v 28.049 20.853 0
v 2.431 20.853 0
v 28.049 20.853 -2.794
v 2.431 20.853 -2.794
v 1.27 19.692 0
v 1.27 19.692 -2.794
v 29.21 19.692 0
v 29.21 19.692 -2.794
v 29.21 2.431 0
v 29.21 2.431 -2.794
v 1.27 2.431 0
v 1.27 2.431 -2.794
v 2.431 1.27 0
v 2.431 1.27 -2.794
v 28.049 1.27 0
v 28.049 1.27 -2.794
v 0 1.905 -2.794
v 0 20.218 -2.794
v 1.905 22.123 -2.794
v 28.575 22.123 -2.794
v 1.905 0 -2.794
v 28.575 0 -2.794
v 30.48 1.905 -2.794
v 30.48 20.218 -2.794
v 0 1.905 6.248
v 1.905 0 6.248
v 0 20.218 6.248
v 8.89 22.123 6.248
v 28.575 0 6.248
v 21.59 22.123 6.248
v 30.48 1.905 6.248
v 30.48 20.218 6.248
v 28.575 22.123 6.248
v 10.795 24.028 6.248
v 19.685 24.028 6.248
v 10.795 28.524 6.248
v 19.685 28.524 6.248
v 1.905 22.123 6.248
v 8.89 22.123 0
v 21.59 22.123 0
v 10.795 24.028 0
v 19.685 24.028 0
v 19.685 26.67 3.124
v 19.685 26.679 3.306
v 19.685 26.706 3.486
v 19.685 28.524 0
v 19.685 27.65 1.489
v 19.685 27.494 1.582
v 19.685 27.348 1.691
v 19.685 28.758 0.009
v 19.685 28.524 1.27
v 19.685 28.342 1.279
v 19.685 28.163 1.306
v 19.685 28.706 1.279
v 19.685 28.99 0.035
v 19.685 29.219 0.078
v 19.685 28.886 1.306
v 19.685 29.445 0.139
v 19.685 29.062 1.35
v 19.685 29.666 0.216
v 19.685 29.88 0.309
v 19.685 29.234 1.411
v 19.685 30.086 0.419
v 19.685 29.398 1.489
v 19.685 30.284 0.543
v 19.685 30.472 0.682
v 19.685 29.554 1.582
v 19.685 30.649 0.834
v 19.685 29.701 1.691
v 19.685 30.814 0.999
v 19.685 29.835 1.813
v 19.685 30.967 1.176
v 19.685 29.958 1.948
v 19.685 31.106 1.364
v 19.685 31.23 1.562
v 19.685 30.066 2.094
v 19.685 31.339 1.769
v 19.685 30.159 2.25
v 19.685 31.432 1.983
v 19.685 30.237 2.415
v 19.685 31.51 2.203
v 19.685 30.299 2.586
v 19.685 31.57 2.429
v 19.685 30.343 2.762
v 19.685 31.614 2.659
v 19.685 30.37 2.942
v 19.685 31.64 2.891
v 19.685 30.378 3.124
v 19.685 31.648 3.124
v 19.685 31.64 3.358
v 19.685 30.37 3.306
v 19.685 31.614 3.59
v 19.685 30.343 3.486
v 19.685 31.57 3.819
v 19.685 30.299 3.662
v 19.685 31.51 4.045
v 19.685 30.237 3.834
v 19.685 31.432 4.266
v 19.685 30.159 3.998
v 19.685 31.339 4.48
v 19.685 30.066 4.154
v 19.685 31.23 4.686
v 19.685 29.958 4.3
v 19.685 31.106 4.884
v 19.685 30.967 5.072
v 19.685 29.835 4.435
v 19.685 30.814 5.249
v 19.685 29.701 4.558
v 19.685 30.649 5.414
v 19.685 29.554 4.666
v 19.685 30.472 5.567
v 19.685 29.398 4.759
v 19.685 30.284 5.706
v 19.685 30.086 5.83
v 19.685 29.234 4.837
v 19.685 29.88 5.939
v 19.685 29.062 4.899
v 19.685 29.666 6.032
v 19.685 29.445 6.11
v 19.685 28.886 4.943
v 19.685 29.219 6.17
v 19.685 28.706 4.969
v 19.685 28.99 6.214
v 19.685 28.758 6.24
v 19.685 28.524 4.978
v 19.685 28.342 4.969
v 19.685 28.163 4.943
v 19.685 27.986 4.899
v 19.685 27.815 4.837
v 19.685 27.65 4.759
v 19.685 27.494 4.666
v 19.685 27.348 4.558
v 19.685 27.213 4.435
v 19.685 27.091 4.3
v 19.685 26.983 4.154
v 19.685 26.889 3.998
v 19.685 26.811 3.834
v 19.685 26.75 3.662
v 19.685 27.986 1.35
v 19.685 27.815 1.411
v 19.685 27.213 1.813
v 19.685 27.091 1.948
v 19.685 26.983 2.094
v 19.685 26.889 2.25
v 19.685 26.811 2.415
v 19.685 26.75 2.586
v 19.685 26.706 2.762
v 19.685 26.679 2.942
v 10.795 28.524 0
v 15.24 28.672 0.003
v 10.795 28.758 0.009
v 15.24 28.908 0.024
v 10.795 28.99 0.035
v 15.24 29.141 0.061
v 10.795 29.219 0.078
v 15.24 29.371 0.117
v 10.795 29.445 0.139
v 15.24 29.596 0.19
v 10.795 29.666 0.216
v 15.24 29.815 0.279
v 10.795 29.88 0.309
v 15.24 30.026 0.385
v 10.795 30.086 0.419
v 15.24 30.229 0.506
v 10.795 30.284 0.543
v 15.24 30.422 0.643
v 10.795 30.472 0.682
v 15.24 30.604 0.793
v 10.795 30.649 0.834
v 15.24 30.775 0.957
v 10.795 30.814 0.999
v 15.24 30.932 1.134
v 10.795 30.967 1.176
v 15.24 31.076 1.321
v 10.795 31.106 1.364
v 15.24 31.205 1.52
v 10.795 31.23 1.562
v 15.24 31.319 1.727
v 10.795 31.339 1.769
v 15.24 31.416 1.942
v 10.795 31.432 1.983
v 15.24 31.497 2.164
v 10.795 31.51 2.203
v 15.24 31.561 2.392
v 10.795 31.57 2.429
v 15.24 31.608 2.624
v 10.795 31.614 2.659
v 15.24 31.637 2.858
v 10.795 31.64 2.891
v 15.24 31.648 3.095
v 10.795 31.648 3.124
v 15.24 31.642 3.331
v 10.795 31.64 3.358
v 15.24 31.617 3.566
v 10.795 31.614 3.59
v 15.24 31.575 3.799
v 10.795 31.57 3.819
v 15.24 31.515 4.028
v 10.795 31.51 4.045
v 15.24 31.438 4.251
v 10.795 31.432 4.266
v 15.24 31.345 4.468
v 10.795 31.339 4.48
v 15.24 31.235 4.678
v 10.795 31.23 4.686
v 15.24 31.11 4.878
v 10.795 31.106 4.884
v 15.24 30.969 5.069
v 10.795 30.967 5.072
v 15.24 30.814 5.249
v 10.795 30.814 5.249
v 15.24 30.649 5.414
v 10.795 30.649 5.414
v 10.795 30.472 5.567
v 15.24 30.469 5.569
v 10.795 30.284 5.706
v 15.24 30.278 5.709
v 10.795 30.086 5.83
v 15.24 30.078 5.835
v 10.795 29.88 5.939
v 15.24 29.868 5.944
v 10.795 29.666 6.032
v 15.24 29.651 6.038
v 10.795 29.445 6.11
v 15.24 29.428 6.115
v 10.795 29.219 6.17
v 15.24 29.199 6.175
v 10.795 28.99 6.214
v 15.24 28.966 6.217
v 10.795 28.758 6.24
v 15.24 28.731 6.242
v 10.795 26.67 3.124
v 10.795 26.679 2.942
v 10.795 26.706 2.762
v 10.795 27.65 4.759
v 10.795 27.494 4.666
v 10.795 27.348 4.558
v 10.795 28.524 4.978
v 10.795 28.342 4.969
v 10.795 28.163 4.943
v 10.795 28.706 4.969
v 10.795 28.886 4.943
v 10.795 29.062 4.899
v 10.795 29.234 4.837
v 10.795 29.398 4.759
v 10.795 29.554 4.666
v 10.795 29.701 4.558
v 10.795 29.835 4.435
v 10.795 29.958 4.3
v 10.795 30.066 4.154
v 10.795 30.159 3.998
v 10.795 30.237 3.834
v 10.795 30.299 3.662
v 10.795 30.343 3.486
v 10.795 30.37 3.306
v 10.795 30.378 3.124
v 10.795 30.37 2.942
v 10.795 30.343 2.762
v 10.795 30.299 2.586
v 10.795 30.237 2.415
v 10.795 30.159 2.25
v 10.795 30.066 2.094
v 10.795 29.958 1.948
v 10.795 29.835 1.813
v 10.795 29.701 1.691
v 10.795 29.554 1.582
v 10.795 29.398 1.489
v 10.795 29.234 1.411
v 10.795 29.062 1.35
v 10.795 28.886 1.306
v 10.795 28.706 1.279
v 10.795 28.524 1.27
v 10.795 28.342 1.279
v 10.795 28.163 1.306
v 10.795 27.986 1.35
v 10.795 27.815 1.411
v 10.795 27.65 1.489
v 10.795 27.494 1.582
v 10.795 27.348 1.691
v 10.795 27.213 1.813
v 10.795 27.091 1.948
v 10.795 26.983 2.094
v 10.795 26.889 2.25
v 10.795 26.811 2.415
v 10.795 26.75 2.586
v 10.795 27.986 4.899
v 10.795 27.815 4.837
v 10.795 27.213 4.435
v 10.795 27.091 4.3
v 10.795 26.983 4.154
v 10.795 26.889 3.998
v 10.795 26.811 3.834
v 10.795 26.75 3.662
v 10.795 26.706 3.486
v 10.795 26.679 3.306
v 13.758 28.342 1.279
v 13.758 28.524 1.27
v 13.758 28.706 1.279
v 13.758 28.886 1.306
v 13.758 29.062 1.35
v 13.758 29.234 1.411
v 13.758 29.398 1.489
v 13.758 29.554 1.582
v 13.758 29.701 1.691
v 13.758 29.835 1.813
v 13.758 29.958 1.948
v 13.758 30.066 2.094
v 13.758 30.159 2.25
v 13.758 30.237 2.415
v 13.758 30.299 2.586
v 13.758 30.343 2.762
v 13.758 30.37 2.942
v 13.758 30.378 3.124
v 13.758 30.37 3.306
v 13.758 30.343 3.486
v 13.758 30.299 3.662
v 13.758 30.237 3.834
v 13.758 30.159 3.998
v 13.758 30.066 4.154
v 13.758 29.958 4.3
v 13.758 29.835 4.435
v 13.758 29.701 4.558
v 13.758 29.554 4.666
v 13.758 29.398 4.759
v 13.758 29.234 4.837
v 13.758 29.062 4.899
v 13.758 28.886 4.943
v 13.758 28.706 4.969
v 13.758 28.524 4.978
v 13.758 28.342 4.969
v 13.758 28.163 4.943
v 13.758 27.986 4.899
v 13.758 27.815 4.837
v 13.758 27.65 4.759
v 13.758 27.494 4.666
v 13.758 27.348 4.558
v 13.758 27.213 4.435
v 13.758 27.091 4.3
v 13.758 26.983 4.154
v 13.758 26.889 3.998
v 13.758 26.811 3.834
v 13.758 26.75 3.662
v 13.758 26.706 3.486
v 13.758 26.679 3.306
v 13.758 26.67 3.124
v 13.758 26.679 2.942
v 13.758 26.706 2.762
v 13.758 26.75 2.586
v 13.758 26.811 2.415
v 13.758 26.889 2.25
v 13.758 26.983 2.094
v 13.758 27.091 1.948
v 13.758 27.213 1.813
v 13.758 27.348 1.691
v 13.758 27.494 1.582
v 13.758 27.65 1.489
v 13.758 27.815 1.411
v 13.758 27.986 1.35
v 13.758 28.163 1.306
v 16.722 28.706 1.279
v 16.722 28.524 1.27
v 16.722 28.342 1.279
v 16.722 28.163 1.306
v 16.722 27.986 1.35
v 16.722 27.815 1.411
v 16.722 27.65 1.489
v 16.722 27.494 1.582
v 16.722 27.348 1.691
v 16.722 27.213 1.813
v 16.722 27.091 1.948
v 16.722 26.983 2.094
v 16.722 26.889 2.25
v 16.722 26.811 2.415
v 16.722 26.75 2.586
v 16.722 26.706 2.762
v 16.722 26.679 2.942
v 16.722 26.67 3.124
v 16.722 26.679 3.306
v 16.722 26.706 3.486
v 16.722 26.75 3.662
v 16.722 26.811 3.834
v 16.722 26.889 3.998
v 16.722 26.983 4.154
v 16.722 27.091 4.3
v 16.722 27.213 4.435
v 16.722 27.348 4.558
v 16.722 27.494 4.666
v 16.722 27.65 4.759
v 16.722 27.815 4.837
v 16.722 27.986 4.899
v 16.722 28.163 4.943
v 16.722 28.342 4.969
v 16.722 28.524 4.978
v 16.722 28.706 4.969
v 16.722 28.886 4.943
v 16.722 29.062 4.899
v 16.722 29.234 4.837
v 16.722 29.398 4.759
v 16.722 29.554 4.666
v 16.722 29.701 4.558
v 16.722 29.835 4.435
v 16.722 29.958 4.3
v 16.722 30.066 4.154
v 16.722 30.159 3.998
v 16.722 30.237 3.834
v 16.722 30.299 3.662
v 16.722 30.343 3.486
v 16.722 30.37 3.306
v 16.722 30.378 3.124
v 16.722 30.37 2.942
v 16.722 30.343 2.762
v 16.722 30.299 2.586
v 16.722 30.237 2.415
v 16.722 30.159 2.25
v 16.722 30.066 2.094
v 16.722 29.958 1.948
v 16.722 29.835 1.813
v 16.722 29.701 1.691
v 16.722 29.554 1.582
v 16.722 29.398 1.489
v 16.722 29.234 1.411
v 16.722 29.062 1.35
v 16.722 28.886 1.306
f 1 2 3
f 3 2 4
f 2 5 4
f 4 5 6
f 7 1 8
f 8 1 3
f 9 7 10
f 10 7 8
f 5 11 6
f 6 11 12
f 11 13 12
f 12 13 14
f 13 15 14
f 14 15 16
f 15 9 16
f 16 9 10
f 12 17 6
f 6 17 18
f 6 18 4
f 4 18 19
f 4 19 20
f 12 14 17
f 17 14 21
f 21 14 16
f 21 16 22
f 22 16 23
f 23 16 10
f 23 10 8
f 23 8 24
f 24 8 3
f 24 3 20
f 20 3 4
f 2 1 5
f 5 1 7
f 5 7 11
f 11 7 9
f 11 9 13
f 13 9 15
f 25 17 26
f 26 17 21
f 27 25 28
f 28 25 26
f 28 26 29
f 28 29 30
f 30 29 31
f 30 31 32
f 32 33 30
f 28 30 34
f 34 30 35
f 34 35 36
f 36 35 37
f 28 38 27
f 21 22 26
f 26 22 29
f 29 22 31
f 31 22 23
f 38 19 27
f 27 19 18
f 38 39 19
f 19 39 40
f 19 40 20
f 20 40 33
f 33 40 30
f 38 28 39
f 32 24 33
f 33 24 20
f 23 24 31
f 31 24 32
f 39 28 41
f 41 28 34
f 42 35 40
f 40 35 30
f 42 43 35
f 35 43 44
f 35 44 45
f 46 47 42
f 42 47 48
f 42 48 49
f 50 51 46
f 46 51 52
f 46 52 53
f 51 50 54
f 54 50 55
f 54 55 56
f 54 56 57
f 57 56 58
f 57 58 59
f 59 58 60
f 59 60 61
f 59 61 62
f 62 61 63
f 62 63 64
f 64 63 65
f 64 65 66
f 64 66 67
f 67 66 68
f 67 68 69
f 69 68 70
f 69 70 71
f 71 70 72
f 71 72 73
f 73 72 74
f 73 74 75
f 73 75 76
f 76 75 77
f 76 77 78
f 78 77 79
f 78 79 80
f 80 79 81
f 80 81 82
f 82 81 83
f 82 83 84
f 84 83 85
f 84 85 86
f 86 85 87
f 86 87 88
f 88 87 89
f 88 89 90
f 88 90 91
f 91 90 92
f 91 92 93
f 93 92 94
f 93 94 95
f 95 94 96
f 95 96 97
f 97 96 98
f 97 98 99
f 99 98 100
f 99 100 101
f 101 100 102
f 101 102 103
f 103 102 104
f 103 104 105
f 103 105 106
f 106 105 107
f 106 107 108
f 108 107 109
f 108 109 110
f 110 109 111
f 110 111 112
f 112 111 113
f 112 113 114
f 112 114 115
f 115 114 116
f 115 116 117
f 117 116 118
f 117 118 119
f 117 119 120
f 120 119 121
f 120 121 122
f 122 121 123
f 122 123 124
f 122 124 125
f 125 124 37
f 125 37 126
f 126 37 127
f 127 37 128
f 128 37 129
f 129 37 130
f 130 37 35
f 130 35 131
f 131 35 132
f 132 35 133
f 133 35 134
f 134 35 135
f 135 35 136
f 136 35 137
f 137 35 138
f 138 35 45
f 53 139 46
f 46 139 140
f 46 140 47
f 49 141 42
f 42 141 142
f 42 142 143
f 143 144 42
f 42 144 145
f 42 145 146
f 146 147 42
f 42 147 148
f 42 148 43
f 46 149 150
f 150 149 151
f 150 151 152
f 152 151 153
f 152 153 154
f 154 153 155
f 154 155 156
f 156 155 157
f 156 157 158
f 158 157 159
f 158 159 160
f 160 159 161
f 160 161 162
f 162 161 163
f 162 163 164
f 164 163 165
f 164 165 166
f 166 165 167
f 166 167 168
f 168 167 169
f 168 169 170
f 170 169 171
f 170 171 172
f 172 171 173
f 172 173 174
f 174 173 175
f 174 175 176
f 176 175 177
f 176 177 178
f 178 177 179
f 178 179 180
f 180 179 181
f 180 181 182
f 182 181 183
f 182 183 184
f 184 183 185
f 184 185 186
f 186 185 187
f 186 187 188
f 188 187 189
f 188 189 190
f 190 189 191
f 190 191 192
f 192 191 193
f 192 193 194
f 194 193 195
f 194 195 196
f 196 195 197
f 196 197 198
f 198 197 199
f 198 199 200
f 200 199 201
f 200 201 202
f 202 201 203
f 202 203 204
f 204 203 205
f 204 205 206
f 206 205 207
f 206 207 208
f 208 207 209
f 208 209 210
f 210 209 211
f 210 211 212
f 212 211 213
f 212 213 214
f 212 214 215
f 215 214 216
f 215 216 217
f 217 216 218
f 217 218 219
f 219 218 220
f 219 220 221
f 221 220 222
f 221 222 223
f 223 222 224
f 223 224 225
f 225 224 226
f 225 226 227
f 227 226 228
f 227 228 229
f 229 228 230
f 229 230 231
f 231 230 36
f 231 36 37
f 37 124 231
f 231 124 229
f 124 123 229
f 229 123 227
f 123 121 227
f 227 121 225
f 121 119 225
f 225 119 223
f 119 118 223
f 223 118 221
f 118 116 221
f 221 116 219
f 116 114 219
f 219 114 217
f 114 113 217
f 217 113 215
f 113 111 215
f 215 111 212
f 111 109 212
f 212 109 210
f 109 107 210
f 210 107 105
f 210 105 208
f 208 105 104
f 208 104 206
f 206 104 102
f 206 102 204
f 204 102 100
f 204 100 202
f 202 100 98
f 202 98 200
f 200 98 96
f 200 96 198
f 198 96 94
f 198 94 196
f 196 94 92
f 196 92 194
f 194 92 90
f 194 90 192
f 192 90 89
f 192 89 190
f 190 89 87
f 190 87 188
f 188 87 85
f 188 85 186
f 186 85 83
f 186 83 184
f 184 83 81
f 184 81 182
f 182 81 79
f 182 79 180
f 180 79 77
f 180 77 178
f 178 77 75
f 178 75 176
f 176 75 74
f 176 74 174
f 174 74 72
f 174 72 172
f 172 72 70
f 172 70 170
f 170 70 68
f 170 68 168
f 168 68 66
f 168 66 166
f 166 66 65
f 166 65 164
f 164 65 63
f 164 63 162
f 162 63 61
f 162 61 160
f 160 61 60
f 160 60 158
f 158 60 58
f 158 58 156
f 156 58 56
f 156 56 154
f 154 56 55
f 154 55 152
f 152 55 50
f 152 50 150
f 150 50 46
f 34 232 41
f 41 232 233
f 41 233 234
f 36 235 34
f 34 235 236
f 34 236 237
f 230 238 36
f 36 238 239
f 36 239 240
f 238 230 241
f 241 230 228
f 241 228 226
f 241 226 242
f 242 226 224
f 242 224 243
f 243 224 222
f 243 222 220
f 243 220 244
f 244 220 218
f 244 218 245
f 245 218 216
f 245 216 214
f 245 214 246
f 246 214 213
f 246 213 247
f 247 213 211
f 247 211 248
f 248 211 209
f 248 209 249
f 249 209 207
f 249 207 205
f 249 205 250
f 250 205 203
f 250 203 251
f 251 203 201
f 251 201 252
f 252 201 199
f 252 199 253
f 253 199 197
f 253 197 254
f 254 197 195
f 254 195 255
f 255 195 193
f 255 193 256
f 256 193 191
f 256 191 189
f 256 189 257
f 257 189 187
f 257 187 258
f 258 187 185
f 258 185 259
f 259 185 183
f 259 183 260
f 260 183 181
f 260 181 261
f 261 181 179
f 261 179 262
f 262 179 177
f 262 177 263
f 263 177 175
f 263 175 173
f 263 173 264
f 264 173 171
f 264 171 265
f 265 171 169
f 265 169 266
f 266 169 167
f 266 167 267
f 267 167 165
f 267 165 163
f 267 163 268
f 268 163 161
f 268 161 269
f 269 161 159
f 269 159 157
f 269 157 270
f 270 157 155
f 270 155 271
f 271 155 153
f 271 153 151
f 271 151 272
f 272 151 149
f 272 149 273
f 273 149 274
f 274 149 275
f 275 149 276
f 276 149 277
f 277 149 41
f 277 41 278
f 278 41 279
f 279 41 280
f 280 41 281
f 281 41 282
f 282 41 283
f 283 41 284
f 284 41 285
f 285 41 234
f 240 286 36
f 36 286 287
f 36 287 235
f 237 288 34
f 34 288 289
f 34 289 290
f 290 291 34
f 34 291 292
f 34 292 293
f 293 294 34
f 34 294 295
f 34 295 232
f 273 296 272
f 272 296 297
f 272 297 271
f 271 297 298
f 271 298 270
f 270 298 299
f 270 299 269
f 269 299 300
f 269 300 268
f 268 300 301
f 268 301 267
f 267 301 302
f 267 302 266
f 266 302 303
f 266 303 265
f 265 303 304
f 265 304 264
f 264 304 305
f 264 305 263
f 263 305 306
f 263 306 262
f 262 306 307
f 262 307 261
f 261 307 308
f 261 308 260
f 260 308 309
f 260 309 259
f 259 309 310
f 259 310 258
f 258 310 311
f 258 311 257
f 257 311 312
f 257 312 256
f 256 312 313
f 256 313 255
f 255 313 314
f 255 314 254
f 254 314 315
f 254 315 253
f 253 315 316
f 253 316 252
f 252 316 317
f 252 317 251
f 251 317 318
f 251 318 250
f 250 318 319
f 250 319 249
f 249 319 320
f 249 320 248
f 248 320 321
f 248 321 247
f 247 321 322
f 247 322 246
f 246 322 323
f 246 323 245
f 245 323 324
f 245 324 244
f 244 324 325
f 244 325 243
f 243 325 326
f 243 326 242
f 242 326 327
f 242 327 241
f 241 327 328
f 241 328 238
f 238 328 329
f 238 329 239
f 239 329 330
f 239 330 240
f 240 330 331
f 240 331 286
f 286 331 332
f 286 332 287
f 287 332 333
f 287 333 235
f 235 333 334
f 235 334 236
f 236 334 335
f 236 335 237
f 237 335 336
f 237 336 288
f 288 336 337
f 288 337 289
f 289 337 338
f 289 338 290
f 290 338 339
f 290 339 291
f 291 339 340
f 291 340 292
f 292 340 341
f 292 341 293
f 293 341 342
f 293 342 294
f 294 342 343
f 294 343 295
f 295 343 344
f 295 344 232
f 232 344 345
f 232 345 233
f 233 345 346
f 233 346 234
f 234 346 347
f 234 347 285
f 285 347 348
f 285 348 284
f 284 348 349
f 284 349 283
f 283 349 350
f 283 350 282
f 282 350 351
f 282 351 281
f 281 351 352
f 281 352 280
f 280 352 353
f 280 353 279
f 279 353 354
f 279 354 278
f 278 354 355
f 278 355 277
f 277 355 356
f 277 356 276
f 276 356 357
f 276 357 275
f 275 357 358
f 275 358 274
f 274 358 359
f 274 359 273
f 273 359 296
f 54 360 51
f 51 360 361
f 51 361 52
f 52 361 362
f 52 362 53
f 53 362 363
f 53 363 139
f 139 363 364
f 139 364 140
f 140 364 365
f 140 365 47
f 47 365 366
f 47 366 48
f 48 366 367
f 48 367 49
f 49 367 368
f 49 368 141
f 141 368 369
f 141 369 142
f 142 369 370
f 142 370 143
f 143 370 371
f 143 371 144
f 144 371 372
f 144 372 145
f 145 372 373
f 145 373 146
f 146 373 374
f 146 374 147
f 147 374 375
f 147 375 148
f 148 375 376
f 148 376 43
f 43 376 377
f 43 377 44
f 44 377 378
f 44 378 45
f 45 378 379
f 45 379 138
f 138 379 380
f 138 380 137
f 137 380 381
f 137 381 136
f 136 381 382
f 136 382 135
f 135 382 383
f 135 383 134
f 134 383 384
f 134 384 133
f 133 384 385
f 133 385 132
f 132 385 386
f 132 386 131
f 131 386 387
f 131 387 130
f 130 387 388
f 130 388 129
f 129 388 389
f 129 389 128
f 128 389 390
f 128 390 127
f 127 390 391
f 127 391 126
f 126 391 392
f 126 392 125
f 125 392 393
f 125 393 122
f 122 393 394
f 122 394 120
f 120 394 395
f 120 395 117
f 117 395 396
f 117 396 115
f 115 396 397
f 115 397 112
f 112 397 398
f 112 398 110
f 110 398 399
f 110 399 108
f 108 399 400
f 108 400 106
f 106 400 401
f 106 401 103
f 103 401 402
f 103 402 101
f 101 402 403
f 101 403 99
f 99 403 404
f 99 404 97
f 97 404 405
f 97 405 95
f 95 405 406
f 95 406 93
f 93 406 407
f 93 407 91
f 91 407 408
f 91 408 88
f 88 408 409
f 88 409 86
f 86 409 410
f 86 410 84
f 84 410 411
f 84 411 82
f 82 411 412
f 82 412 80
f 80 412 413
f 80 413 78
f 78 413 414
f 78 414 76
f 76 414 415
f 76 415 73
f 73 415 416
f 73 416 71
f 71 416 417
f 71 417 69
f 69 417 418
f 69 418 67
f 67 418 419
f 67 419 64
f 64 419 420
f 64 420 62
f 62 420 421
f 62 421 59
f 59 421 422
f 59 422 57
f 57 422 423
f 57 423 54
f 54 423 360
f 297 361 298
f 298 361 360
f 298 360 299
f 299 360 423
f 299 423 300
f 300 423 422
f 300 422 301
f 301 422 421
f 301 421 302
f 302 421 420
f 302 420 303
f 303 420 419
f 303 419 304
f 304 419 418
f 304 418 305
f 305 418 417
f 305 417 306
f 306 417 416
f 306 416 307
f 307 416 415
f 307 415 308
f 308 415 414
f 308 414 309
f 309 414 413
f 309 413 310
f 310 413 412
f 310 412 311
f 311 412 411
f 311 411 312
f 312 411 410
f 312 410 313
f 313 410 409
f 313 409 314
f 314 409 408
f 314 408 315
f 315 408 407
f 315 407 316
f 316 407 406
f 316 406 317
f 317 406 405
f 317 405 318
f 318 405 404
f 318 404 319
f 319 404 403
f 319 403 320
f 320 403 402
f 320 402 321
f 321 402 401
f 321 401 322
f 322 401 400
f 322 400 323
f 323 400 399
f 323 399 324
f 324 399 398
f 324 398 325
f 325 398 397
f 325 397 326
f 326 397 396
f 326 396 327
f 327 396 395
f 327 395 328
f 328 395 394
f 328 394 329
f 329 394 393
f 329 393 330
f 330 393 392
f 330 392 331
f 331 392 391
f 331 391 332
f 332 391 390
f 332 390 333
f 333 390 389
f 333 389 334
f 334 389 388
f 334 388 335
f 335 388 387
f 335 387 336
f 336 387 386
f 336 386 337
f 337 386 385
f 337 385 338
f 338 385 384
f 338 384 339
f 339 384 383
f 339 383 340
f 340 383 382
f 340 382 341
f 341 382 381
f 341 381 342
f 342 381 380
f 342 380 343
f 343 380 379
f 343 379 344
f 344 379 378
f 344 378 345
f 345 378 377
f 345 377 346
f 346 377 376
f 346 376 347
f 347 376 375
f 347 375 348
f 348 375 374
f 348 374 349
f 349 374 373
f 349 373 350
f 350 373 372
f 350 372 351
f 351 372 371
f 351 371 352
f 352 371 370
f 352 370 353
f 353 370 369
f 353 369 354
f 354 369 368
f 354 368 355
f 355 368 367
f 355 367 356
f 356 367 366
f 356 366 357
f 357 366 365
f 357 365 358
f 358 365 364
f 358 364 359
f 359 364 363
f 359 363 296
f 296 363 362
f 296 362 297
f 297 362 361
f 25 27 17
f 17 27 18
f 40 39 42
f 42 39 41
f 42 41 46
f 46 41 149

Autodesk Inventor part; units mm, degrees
ref_plane "YZ Plane" through (0, 0, 0) normal (1, 0, 0) x (0, 1, 0)
ref_plane "XZ Plane" through (0, 0, 0) normal (0, 1, 0) x (-1, 0, 0)
ref_plane "XY Plane" through (0, 0, 0) normal (0, 0, 1) x (1, 0, 0)
sketch "Sketch1" plane through (0, 0, 0) normal (0, 0, 1) x (1, 0, 0)
  line L0 (0, 0) -> (0, 22.1234)
  line L1 (0, 22.1234) -> (10.795, 22.1234)
  line L2 (10.795, 22.1234) -> (10.795, 31.6484)
  line L3 (10.795, 31.6484) -> (19.685, 31.6484)
  line L4 (19.685, 31.6484) -> (19.685, 22.1234)
  line L5 (19.685, 22.1234) -> (30.48, 22.1234)
  line L6 (30.48, 22.1234) -> (30.48, 0)
  line L7 (30.48, 0) -> (0, 0)
  dimension "d0" = 10.795
  dimension "d1" = 9.525
  dimension "d2" = 8.89
  dimension "d3" = 10.795
  dimension "d17" = 31.6484
extrude "Extrusion1" add sketch "Sketch1" along normal blind 6.2484
sketch "Sketch2" plane through (19.685, 22.1234, 0) normal (1, 0, 0) x (0, 0, -1)
  circle A0 centre (-3.1242, 6.4008) radius 1.8542
  line L0 (0, 9.525) -> (-6.2484, 9.525) projected
  line L1 (-3.1242, 9.525) -> (-3.1242, 0) construction
  line L2 (0, 0) -> (-6.2484, 0) projected
  point P0 (0, -22.1234)
  dimension "d7" = 3.7084
  dimension "d8" = 3.1242
extrude "Extrusion2" cut sketch "Sketch2" against normal through all
fillet "Fillet1" radius 3.1242 2 edges at (15.24, 31.6484, 6.2484) (15.24, 31.6484, 0)
chamfer "Chamfer1" distance 1.905 angle 45 6 edges at (19.685, 22.1234, 3.1242) (10.795, 22.1234, 3.1242) (30.48, 22.1234, 3.1242) (0, 22.1234, 3.1242) (30.48, 0, 3.1242) (0, 0, 3.1242)
sketch "Sketch4" plane through (0, 0, 0) normal (0, 0, -1) x (-1, 0, 0)
  line L0 (-21.59, 22.1234) -> (-8.89, 22.1234)
  line L1 (-1.905, 22.1234) -> (-8.89, 22.1234) projected
  line L2 (-1.905, 22.1234) -> (0, 20.2184) projected
  line L3 (0, 1.905) -> (0, 20.2184) projected
  line L4 (0, 1.905) -> (-1.905, 0) projected
  line L5 (-28.575, 0) -> (-1.905, 0) projected
  line L6 (-28.575, 0) -> (-30.48, 1.905) projected
  line L7 (-30.48, 20.2184) -> (-30.48, 1.905) projected
  line L8 (-30.48, 20.2184) -> (-28.575, 22.1234) projected
  line L9 (-21.59, 22.1234) -> (-28.575, 22.1234) projected
  line L10 (-28.0489, 20.8534) -> (-29.21, 19.6923)
  line L11 (-29.21, 19.6923) -> (-29.21, 2.4311)
  line L12 (-29.21, 2.4311) -> (-28.0489, 1.27)
  line L13 (-28.0489, 1.27) -> (-2.4311, 1.27)
  line L14 (-2.4311, 1.27) -> (-1.27, 2.4311)
  line L15 (-1.27, 2.4311) -> (-1.27, 19.6923)
  line L16 (-1.27, 19.6923) -> (-2.4311, 20.8534)
  line L17 (-2.4311, 20.8534) -> (-8.89, 20.8534)
  line L18 (-8.89, 20.8534) -> (-21.59, 20.8534)
  line L19 (-21.59, 20.8534) -> (-28.0489, 20.8534)
  line L20 (-29.21, 3.175) -> (-1.27, 3.175)
  point P0 (0, 0)
  point P1 (-29.21, 3.81)
  point P2 (-30.48, 3.81)
  point P3 (-1.27, 3.81)
  point P4 (0, 3.81)
  dimension "d18" = 1.27
  dimension "d19" = 3.175
extrude "Extrusion3" add sketch "Sketch4" along normal blind 2.794
properties part number "SDCardCover"
